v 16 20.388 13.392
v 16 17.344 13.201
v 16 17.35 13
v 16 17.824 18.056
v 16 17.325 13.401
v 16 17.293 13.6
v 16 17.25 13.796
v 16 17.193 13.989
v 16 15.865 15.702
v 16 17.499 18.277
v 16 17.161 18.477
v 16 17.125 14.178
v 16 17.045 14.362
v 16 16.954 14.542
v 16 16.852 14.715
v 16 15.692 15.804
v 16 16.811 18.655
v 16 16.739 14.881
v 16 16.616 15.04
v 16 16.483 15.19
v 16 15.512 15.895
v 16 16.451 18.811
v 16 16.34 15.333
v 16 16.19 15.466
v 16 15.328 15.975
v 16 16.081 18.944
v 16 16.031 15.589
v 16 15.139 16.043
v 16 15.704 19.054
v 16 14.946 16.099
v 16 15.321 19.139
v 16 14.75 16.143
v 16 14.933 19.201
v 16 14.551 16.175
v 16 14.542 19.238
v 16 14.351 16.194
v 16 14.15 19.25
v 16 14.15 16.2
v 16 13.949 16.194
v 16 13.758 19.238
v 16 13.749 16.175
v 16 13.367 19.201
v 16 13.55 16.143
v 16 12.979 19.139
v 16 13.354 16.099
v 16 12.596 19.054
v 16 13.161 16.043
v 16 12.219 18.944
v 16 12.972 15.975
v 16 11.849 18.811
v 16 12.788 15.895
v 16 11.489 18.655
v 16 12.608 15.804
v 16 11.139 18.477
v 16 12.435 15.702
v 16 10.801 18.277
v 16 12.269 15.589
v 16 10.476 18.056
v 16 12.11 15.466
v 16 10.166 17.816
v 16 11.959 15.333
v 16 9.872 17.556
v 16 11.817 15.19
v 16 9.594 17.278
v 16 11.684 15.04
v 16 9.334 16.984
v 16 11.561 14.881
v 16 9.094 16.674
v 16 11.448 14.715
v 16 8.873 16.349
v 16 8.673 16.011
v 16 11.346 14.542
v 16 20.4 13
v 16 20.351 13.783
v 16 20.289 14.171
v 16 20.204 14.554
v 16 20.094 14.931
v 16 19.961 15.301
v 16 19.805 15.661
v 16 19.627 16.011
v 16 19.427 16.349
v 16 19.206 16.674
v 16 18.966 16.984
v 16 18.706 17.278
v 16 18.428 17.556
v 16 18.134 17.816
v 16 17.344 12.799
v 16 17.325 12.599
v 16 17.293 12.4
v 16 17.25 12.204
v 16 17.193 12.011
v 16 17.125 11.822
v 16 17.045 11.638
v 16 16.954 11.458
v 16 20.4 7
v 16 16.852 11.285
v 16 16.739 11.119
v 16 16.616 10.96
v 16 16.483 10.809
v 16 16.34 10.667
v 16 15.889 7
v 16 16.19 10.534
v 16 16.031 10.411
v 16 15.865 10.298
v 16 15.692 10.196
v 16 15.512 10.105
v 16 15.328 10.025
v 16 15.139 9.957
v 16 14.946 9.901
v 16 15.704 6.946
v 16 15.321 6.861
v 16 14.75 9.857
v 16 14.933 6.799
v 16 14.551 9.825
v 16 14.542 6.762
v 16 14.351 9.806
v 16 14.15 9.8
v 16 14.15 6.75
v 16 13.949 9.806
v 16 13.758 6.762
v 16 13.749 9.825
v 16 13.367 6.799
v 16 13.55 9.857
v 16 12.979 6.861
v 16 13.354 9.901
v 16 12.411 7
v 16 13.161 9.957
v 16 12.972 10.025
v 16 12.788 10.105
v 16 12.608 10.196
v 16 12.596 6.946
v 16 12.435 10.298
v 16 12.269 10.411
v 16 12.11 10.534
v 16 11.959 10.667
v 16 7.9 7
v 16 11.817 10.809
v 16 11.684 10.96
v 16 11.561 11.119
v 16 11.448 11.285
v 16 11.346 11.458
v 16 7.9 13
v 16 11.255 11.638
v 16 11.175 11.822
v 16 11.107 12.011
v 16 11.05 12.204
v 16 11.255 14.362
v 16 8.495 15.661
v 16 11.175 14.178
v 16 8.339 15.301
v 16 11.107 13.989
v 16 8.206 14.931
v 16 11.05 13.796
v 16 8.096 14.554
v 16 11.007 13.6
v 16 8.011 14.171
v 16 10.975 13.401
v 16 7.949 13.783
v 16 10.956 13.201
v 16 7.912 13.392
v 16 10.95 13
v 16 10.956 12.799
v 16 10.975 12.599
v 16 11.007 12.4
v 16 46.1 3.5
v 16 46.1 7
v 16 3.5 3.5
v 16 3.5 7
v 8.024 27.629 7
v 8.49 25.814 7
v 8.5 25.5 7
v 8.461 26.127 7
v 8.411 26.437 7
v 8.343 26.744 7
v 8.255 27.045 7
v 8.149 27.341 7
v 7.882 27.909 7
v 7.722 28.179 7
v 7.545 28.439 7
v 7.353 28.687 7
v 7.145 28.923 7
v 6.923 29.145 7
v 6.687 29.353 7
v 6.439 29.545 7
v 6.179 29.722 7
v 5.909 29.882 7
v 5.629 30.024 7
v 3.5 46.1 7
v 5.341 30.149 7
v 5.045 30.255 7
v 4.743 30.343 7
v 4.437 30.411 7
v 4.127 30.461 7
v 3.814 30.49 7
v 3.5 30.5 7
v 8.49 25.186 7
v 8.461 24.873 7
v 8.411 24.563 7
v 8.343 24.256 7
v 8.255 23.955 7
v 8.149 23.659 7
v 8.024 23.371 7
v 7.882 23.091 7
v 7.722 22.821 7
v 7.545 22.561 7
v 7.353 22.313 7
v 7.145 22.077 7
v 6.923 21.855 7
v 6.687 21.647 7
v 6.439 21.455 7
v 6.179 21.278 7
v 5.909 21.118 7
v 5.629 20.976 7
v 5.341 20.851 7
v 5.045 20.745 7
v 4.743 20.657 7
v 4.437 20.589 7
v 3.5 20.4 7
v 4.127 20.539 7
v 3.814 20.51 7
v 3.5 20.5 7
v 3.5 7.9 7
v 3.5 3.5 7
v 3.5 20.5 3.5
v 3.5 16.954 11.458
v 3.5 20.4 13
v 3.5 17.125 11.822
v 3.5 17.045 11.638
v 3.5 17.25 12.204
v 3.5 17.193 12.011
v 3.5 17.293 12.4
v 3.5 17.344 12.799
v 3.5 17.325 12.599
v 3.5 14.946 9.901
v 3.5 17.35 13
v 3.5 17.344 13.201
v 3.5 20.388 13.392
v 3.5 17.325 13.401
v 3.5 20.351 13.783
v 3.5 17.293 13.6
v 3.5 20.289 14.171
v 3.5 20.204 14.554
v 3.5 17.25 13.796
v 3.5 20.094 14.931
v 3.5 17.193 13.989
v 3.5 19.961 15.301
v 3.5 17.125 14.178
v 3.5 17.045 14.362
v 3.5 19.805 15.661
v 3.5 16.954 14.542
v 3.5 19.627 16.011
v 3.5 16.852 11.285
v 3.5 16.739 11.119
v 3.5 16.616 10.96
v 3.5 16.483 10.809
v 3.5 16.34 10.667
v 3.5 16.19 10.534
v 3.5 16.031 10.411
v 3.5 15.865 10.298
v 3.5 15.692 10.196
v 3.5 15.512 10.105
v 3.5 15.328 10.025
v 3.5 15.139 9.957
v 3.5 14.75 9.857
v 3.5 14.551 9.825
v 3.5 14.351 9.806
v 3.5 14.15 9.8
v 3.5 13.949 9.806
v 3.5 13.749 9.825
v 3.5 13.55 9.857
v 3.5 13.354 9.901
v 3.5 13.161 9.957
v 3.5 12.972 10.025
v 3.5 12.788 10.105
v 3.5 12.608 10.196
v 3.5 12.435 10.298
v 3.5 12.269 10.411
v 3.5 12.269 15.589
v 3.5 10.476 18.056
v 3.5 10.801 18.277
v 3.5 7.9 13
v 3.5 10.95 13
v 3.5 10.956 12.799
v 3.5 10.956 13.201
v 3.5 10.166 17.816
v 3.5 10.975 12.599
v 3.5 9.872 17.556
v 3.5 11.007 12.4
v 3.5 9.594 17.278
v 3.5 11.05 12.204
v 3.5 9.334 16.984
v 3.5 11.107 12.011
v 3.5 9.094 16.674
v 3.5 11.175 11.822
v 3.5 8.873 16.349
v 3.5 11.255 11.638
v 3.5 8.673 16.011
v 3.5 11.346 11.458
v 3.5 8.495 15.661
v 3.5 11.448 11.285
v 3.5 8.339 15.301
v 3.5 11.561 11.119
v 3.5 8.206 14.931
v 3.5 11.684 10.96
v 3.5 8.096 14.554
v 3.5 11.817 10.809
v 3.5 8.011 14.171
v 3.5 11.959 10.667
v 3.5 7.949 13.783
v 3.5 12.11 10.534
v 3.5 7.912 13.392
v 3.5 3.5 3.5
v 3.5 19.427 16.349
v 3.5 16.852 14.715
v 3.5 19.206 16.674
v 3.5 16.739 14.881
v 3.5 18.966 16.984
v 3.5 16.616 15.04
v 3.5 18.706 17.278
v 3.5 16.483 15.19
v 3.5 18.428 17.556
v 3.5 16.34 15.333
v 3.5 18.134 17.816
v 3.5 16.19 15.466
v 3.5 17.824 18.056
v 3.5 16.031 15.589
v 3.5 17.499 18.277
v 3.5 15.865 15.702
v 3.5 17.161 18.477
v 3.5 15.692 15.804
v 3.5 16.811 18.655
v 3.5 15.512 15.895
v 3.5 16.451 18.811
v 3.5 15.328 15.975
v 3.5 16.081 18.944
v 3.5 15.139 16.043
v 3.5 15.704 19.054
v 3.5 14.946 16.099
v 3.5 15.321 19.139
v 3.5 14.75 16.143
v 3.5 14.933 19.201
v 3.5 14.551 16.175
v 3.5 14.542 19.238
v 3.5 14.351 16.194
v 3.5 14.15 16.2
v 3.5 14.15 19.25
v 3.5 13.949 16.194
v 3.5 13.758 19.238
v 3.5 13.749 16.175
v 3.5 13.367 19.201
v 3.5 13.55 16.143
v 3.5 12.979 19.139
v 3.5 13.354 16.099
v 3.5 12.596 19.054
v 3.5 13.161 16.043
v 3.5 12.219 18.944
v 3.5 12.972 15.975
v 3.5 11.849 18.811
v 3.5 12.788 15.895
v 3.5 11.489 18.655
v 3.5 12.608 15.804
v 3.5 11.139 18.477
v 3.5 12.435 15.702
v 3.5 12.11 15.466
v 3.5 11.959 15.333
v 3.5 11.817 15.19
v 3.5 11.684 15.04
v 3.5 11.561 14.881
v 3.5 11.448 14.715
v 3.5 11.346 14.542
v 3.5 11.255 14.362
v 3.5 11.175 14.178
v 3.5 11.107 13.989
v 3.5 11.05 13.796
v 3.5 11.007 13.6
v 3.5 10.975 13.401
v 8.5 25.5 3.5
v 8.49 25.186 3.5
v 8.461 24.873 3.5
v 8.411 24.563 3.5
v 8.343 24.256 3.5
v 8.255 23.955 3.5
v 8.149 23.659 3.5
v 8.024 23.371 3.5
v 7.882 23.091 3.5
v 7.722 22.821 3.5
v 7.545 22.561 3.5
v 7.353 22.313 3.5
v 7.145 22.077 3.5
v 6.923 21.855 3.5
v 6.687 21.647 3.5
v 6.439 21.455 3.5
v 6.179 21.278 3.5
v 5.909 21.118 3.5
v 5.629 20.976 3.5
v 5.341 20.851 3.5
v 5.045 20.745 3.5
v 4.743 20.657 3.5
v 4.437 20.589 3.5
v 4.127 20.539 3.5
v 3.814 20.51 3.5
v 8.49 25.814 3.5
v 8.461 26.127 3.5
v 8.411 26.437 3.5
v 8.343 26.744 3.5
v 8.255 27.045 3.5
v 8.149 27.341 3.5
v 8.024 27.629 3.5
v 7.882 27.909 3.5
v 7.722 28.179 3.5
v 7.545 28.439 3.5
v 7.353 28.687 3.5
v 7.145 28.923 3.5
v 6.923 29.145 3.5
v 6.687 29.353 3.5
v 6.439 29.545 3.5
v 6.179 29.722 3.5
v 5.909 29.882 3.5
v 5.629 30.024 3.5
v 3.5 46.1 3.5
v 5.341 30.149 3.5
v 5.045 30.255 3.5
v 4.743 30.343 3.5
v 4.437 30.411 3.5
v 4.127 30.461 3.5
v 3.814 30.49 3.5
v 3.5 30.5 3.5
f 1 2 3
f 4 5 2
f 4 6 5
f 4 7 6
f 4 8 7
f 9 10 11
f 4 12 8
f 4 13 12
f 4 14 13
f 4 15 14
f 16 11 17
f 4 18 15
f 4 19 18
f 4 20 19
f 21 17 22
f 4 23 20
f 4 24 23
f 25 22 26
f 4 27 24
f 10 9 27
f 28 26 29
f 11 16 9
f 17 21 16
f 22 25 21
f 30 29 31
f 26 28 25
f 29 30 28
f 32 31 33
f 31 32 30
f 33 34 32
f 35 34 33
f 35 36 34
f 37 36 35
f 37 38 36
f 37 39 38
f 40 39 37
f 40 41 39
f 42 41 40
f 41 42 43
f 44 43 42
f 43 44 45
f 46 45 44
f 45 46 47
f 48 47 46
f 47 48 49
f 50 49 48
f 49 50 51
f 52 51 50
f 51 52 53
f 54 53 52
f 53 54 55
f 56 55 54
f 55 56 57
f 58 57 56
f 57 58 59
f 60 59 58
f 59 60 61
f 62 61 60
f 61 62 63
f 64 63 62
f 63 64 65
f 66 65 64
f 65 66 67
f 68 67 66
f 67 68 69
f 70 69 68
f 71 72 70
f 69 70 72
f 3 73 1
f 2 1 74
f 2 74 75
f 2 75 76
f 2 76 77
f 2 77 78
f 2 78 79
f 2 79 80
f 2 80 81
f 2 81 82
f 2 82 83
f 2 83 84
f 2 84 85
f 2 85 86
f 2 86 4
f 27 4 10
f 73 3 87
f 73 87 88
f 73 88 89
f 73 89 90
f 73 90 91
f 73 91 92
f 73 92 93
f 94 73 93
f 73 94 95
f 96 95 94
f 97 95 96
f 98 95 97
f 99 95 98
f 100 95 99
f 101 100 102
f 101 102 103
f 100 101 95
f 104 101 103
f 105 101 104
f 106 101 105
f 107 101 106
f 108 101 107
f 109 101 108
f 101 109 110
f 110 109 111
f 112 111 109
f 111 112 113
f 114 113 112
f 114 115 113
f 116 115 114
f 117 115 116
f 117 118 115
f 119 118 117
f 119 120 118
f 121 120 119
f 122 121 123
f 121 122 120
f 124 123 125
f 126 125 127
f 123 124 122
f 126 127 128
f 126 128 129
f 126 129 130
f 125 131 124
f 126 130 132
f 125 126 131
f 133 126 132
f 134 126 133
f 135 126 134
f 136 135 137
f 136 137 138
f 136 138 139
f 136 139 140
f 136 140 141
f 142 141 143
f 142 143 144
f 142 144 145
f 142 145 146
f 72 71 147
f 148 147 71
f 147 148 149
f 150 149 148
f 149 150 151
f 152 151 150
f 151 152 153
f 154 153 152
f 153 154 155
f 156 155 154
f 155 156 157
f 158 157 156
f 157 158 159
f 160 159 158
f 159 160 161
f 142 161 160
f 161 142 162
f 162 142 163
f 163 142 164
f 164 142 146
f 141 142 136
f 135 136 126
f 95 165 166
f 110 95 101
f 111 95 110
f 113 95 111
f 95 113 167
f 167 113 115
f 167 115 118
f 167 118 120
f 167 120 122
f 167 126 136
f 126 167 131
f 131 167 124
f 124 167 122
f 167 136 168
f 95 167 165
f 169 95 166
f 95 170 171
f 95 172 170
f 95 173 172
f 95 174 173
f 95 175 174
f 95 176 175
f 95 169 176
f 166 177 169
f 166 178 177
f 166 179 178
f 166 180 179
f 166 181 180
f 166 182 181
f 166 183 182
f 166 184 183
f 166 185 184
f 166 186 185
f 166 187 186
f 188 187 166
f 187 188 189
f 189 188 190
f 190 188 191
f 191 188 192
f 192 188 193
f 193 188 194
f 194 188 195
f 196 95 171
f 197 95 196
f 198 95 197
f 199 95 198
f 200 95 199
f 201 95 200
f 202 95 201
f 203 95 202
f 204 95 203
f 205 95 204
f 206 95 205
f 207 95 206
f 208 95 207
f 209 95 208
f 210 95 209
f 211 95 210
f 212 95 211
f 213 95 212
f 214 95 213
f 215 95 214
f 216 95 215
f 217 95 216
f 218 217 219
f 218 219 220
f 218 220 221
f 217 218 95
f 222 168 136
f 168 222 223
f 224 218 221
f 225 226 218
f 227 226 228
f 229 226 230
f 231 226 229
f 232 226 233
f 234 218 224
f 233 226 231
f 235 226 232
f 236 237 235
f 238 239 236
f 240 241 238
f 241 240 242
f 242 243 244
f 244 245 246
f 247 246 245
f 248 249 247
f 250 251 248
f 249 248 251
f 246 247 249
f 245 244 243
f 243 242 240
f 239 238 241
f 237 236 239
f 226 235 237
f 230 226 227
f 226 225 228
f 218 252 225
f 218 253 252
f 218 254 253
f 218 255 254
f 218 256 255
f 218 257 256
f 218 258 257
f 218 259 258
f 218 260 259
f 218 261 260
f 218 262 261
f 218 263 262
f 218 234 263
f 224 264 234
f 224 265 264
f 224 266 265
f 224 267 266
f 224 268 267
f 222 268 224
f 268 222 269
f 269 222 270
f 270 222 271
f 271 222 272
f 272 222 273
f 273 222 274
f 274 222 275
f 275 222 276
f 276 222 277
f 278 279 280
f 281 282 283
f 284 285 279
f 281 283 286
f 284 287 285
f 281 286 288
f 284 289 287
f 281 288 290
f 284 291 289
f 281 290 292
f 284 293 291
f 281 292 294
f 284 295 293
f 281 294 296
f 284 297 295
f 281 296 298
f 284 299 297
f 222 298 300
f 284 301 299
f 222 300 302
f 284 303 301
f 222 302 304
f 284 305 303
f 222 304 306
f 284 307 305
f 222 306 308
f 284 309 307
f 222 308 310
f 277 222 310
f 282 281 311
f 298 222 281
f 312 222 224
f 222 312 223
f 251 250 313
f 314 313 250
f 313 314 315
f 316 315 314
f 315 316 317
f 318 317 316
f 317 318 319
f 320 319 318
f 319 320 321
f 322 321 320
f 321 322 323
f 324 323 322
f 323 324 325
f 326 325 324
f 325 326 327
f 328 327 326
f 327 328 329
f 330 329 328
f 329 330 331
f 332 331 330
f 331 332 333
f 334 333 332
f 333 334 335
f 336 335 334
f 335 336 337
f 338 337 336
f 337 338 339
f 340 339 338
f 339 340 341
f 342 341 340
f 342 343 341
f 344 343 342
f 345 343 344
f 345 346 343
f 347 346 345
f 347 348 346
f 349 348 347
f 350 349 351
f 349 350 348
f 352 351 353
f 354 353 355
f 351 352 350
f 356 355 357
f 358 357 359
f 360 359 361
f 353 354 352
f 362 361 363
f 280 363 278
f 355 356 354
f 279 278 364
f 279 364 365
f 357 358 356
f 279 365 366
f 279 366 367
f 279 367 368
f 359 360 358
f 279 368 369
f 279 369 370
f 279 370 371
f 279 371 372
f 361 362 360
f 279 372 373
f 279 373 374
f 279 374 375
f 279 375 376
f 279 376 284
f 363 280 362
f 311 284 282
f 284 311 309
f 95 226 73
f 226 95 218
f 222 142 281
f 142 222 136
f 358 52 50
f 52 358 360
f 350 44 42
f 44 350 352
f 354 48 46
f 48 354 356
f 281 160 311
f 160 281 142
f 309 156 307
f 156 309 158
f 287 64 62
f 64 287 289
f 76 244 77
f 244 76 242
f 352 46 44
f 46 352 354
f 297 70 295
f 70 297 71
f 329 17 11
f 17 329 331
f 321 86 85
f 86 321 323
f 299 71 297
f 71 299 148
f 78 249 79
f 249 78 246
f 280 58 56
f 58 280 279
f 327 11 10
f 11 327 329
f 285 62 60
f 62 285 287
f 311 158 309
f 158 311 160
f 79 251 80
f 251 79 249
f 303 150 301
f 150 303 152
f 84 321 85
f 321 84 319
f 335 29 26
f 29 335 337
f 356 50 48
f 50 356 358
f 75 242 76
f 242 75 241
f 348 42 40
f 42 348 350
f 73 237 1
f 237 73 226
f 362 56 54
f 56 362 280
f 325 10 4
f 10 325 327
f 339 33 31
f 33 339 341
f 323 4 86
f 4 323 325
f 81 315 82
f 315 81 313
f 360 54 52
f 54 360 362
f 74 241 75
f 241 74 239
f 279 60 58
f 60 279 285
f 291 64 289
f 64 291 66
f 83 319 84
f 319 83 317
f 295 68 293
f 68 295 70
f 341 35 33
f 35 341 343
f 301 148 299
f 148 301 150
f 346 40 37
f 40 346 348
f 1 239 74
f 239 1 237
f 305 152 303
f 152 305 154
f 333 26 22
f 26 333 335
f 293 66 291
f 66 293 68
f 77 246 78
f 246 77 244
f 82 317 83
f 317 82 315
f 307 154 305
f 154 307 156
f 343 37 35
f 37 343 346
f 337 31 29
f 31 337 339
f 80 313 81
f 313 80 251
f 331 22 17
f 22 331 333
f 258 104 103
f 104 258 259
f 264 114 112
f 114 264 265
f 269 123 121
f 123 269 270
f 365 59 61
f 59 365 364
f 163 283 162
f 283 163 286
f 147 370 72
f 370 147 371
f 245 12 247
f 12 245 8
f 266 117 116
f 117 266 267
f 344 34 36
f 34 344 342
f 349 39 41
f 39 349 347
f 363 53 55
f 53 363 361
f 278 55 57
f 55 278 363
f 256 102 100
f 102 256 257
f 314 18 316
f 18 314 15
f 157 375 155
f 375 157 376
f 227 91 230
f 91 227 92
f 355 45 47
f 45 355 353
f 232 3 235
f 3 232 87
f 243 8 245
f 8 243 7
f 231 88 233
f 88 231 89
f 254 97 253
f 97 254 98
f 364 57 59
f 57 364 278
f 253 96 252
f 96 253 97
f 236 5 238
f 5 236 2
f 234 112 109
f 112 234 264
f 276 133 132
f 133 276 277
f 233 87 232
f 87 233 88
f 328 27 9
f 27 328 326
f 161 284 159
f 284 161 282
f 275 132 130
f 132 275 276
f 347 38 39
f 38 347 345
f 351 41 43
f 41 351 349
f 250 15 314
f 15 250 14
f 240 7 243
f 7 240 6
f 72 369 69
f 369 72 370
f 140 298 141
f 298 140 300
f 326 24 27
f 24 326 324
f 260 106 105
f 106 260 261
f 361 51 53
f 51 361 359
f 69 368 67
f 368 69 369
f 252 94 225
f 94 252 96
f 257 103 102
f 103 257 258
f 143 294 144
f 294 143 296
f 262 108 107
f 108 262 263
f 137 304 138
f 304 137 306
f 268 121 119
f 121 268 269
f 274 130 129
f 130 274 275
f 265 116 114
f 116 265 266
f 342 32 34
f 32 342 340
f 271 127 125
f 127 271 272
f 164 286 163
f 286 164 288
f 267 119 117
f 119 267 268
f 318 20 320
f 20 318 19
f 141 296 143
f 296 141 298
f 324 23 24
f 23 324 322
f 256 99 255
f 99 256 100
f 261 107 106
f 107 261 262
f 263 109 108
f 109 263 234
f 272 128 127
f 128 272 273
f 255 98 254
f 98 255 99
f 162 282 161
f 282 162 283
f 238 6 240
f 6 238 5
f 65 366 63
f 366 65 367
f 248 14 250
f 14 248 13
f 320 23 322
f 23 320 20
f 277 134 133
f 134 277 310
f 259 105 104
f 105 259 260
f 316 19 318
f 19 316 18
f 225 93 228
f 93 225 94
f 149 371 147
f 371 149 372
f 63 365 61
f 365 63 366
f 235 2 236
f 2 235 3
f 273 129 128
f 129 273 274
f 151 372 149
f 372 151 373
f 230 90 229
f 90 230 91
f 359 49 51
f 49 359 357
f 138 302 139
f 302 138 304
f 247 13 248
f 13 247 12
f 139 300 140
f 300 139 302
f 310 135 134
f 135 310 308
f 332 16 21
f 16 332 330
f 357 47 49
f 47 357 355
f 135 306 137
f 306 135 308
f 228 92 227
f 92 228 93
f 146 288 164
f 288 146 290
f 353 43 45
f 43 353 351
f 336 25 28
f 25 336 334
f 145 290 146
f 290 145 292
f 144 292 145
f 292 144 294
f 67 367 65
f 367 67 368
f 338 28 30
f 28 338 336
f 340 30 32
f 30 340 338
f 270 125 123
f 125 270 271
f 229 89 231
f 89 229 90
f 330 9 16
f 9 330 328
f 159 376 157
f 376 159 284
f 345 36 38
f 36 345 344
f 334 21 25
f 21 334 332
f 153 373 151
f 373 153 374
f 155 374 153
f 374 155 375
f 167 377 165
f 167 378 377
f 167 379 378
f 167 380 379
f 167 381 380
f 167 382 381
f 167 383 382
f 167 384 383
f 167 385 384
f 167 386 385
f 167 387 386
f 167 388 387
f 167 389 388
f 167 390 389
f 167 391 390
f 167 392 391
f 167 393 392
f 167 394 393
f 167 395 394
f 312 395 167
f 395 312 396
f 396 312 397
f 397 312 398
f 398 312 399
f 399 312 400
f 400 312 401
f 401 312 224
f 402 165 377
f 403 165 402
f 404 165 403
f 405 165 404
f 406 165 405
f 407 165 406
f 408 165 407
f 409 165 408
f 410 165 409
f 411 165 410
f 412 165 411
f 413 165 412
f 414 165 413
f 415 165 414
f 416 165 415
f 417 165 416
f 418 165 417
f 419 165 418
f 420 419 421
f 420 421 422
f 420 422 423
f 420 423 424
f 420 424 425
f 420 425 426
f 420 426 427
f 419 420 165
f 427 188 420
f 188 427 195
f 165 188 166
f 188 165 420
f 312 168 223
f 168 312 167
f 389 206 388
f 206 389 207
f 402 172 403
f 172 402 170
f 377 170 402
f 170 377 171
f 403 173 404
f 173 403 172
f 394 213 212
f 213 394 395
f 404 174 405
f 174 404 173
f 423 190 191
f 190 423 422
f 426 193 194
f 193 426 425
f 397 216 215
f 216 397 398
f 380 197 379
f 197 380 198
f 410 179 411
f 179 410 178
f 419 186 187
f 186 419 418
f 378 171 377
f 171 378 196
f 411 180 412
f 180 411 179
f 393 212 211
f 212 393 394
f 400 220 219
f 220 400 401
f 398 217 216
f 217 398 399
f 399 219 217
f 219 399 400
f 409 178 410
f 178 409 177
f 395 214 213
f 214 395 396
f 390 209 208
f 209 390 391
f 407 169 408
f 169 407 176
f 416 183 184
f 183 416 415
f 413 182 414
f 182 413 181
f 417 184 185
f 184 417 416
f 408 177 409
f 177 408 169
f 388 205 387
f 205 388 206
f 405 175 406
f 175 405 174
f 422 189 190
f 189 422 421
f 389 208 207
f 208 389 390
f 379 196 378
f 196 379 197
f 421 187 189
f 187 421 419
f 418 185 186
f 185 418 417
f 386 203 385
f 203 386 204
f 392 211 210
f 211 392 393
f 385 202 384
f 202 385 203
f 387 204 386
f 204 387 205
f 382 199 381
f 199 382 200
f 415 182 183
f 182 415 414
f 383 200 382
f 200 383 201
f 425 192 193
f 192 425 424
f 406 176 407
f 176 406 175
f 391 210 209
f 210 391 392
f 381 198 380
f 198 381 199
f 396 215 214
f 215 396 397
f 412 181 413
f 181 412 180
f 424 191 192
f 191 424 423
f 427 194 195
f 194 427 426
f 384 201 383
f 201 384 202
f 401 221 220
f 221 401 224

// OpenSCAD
length = 43-.4;//52;
width = 88-.4;//86;
height = 32;
wall = 3.5;
o_width = width + wall + wall;
o_length = length + wall + wall;
o_height = height + wall;

resolution = 100;

$fn = resolution;

// outer box
standoff_id=3.45;
standoff_od=7;
standoff_od_wall_depth = wall-2;
standoff_width = 80.8;
standoff_length = 47.25;
//difference(){
    // main box
    //cube([o_width, o_length, o_height]);
    translate([wall, wall, 0]) {
        translate([0, 0, wall]) {
            // 9999 to take out the whole face
            difference(){
            cube([width, length, wall]);
                translate([width, length/2, 0]) {
                    cylinder(h=100, r=5);
                }
                translate([0, length/2+.7, 0]) {
                    cylinder(h=100, r=5);
                }
                translate([12.5, 0, 0]) {
                    cube([width, length, wall]);
                }

            }
        }
    }
//}


//add the pin mechanism
pin_od = 12.5;
pin_id = 6.4;
pin_len = 16;
wall_offset = 6;
translate([wall, (1/4)*length+wall-pin_od/2, wall+wall]){
    difference() {
        union(){
            cube([pin_len-wall, pin_od, wall_offset]);
            rotate([0,90,0]) {
                translate([-wall_offset,pin_od/2,0]) {
                    cylinder(h=pin_len-wall, d=pin_od);
                }
            }
        }
        rotate([0,90,0]) {
            translate([-wall_offset,pin_od/2,0]) {
                cylinder(h=pin_len-wall, d=pin_id);   
            }
        }
    }
}
